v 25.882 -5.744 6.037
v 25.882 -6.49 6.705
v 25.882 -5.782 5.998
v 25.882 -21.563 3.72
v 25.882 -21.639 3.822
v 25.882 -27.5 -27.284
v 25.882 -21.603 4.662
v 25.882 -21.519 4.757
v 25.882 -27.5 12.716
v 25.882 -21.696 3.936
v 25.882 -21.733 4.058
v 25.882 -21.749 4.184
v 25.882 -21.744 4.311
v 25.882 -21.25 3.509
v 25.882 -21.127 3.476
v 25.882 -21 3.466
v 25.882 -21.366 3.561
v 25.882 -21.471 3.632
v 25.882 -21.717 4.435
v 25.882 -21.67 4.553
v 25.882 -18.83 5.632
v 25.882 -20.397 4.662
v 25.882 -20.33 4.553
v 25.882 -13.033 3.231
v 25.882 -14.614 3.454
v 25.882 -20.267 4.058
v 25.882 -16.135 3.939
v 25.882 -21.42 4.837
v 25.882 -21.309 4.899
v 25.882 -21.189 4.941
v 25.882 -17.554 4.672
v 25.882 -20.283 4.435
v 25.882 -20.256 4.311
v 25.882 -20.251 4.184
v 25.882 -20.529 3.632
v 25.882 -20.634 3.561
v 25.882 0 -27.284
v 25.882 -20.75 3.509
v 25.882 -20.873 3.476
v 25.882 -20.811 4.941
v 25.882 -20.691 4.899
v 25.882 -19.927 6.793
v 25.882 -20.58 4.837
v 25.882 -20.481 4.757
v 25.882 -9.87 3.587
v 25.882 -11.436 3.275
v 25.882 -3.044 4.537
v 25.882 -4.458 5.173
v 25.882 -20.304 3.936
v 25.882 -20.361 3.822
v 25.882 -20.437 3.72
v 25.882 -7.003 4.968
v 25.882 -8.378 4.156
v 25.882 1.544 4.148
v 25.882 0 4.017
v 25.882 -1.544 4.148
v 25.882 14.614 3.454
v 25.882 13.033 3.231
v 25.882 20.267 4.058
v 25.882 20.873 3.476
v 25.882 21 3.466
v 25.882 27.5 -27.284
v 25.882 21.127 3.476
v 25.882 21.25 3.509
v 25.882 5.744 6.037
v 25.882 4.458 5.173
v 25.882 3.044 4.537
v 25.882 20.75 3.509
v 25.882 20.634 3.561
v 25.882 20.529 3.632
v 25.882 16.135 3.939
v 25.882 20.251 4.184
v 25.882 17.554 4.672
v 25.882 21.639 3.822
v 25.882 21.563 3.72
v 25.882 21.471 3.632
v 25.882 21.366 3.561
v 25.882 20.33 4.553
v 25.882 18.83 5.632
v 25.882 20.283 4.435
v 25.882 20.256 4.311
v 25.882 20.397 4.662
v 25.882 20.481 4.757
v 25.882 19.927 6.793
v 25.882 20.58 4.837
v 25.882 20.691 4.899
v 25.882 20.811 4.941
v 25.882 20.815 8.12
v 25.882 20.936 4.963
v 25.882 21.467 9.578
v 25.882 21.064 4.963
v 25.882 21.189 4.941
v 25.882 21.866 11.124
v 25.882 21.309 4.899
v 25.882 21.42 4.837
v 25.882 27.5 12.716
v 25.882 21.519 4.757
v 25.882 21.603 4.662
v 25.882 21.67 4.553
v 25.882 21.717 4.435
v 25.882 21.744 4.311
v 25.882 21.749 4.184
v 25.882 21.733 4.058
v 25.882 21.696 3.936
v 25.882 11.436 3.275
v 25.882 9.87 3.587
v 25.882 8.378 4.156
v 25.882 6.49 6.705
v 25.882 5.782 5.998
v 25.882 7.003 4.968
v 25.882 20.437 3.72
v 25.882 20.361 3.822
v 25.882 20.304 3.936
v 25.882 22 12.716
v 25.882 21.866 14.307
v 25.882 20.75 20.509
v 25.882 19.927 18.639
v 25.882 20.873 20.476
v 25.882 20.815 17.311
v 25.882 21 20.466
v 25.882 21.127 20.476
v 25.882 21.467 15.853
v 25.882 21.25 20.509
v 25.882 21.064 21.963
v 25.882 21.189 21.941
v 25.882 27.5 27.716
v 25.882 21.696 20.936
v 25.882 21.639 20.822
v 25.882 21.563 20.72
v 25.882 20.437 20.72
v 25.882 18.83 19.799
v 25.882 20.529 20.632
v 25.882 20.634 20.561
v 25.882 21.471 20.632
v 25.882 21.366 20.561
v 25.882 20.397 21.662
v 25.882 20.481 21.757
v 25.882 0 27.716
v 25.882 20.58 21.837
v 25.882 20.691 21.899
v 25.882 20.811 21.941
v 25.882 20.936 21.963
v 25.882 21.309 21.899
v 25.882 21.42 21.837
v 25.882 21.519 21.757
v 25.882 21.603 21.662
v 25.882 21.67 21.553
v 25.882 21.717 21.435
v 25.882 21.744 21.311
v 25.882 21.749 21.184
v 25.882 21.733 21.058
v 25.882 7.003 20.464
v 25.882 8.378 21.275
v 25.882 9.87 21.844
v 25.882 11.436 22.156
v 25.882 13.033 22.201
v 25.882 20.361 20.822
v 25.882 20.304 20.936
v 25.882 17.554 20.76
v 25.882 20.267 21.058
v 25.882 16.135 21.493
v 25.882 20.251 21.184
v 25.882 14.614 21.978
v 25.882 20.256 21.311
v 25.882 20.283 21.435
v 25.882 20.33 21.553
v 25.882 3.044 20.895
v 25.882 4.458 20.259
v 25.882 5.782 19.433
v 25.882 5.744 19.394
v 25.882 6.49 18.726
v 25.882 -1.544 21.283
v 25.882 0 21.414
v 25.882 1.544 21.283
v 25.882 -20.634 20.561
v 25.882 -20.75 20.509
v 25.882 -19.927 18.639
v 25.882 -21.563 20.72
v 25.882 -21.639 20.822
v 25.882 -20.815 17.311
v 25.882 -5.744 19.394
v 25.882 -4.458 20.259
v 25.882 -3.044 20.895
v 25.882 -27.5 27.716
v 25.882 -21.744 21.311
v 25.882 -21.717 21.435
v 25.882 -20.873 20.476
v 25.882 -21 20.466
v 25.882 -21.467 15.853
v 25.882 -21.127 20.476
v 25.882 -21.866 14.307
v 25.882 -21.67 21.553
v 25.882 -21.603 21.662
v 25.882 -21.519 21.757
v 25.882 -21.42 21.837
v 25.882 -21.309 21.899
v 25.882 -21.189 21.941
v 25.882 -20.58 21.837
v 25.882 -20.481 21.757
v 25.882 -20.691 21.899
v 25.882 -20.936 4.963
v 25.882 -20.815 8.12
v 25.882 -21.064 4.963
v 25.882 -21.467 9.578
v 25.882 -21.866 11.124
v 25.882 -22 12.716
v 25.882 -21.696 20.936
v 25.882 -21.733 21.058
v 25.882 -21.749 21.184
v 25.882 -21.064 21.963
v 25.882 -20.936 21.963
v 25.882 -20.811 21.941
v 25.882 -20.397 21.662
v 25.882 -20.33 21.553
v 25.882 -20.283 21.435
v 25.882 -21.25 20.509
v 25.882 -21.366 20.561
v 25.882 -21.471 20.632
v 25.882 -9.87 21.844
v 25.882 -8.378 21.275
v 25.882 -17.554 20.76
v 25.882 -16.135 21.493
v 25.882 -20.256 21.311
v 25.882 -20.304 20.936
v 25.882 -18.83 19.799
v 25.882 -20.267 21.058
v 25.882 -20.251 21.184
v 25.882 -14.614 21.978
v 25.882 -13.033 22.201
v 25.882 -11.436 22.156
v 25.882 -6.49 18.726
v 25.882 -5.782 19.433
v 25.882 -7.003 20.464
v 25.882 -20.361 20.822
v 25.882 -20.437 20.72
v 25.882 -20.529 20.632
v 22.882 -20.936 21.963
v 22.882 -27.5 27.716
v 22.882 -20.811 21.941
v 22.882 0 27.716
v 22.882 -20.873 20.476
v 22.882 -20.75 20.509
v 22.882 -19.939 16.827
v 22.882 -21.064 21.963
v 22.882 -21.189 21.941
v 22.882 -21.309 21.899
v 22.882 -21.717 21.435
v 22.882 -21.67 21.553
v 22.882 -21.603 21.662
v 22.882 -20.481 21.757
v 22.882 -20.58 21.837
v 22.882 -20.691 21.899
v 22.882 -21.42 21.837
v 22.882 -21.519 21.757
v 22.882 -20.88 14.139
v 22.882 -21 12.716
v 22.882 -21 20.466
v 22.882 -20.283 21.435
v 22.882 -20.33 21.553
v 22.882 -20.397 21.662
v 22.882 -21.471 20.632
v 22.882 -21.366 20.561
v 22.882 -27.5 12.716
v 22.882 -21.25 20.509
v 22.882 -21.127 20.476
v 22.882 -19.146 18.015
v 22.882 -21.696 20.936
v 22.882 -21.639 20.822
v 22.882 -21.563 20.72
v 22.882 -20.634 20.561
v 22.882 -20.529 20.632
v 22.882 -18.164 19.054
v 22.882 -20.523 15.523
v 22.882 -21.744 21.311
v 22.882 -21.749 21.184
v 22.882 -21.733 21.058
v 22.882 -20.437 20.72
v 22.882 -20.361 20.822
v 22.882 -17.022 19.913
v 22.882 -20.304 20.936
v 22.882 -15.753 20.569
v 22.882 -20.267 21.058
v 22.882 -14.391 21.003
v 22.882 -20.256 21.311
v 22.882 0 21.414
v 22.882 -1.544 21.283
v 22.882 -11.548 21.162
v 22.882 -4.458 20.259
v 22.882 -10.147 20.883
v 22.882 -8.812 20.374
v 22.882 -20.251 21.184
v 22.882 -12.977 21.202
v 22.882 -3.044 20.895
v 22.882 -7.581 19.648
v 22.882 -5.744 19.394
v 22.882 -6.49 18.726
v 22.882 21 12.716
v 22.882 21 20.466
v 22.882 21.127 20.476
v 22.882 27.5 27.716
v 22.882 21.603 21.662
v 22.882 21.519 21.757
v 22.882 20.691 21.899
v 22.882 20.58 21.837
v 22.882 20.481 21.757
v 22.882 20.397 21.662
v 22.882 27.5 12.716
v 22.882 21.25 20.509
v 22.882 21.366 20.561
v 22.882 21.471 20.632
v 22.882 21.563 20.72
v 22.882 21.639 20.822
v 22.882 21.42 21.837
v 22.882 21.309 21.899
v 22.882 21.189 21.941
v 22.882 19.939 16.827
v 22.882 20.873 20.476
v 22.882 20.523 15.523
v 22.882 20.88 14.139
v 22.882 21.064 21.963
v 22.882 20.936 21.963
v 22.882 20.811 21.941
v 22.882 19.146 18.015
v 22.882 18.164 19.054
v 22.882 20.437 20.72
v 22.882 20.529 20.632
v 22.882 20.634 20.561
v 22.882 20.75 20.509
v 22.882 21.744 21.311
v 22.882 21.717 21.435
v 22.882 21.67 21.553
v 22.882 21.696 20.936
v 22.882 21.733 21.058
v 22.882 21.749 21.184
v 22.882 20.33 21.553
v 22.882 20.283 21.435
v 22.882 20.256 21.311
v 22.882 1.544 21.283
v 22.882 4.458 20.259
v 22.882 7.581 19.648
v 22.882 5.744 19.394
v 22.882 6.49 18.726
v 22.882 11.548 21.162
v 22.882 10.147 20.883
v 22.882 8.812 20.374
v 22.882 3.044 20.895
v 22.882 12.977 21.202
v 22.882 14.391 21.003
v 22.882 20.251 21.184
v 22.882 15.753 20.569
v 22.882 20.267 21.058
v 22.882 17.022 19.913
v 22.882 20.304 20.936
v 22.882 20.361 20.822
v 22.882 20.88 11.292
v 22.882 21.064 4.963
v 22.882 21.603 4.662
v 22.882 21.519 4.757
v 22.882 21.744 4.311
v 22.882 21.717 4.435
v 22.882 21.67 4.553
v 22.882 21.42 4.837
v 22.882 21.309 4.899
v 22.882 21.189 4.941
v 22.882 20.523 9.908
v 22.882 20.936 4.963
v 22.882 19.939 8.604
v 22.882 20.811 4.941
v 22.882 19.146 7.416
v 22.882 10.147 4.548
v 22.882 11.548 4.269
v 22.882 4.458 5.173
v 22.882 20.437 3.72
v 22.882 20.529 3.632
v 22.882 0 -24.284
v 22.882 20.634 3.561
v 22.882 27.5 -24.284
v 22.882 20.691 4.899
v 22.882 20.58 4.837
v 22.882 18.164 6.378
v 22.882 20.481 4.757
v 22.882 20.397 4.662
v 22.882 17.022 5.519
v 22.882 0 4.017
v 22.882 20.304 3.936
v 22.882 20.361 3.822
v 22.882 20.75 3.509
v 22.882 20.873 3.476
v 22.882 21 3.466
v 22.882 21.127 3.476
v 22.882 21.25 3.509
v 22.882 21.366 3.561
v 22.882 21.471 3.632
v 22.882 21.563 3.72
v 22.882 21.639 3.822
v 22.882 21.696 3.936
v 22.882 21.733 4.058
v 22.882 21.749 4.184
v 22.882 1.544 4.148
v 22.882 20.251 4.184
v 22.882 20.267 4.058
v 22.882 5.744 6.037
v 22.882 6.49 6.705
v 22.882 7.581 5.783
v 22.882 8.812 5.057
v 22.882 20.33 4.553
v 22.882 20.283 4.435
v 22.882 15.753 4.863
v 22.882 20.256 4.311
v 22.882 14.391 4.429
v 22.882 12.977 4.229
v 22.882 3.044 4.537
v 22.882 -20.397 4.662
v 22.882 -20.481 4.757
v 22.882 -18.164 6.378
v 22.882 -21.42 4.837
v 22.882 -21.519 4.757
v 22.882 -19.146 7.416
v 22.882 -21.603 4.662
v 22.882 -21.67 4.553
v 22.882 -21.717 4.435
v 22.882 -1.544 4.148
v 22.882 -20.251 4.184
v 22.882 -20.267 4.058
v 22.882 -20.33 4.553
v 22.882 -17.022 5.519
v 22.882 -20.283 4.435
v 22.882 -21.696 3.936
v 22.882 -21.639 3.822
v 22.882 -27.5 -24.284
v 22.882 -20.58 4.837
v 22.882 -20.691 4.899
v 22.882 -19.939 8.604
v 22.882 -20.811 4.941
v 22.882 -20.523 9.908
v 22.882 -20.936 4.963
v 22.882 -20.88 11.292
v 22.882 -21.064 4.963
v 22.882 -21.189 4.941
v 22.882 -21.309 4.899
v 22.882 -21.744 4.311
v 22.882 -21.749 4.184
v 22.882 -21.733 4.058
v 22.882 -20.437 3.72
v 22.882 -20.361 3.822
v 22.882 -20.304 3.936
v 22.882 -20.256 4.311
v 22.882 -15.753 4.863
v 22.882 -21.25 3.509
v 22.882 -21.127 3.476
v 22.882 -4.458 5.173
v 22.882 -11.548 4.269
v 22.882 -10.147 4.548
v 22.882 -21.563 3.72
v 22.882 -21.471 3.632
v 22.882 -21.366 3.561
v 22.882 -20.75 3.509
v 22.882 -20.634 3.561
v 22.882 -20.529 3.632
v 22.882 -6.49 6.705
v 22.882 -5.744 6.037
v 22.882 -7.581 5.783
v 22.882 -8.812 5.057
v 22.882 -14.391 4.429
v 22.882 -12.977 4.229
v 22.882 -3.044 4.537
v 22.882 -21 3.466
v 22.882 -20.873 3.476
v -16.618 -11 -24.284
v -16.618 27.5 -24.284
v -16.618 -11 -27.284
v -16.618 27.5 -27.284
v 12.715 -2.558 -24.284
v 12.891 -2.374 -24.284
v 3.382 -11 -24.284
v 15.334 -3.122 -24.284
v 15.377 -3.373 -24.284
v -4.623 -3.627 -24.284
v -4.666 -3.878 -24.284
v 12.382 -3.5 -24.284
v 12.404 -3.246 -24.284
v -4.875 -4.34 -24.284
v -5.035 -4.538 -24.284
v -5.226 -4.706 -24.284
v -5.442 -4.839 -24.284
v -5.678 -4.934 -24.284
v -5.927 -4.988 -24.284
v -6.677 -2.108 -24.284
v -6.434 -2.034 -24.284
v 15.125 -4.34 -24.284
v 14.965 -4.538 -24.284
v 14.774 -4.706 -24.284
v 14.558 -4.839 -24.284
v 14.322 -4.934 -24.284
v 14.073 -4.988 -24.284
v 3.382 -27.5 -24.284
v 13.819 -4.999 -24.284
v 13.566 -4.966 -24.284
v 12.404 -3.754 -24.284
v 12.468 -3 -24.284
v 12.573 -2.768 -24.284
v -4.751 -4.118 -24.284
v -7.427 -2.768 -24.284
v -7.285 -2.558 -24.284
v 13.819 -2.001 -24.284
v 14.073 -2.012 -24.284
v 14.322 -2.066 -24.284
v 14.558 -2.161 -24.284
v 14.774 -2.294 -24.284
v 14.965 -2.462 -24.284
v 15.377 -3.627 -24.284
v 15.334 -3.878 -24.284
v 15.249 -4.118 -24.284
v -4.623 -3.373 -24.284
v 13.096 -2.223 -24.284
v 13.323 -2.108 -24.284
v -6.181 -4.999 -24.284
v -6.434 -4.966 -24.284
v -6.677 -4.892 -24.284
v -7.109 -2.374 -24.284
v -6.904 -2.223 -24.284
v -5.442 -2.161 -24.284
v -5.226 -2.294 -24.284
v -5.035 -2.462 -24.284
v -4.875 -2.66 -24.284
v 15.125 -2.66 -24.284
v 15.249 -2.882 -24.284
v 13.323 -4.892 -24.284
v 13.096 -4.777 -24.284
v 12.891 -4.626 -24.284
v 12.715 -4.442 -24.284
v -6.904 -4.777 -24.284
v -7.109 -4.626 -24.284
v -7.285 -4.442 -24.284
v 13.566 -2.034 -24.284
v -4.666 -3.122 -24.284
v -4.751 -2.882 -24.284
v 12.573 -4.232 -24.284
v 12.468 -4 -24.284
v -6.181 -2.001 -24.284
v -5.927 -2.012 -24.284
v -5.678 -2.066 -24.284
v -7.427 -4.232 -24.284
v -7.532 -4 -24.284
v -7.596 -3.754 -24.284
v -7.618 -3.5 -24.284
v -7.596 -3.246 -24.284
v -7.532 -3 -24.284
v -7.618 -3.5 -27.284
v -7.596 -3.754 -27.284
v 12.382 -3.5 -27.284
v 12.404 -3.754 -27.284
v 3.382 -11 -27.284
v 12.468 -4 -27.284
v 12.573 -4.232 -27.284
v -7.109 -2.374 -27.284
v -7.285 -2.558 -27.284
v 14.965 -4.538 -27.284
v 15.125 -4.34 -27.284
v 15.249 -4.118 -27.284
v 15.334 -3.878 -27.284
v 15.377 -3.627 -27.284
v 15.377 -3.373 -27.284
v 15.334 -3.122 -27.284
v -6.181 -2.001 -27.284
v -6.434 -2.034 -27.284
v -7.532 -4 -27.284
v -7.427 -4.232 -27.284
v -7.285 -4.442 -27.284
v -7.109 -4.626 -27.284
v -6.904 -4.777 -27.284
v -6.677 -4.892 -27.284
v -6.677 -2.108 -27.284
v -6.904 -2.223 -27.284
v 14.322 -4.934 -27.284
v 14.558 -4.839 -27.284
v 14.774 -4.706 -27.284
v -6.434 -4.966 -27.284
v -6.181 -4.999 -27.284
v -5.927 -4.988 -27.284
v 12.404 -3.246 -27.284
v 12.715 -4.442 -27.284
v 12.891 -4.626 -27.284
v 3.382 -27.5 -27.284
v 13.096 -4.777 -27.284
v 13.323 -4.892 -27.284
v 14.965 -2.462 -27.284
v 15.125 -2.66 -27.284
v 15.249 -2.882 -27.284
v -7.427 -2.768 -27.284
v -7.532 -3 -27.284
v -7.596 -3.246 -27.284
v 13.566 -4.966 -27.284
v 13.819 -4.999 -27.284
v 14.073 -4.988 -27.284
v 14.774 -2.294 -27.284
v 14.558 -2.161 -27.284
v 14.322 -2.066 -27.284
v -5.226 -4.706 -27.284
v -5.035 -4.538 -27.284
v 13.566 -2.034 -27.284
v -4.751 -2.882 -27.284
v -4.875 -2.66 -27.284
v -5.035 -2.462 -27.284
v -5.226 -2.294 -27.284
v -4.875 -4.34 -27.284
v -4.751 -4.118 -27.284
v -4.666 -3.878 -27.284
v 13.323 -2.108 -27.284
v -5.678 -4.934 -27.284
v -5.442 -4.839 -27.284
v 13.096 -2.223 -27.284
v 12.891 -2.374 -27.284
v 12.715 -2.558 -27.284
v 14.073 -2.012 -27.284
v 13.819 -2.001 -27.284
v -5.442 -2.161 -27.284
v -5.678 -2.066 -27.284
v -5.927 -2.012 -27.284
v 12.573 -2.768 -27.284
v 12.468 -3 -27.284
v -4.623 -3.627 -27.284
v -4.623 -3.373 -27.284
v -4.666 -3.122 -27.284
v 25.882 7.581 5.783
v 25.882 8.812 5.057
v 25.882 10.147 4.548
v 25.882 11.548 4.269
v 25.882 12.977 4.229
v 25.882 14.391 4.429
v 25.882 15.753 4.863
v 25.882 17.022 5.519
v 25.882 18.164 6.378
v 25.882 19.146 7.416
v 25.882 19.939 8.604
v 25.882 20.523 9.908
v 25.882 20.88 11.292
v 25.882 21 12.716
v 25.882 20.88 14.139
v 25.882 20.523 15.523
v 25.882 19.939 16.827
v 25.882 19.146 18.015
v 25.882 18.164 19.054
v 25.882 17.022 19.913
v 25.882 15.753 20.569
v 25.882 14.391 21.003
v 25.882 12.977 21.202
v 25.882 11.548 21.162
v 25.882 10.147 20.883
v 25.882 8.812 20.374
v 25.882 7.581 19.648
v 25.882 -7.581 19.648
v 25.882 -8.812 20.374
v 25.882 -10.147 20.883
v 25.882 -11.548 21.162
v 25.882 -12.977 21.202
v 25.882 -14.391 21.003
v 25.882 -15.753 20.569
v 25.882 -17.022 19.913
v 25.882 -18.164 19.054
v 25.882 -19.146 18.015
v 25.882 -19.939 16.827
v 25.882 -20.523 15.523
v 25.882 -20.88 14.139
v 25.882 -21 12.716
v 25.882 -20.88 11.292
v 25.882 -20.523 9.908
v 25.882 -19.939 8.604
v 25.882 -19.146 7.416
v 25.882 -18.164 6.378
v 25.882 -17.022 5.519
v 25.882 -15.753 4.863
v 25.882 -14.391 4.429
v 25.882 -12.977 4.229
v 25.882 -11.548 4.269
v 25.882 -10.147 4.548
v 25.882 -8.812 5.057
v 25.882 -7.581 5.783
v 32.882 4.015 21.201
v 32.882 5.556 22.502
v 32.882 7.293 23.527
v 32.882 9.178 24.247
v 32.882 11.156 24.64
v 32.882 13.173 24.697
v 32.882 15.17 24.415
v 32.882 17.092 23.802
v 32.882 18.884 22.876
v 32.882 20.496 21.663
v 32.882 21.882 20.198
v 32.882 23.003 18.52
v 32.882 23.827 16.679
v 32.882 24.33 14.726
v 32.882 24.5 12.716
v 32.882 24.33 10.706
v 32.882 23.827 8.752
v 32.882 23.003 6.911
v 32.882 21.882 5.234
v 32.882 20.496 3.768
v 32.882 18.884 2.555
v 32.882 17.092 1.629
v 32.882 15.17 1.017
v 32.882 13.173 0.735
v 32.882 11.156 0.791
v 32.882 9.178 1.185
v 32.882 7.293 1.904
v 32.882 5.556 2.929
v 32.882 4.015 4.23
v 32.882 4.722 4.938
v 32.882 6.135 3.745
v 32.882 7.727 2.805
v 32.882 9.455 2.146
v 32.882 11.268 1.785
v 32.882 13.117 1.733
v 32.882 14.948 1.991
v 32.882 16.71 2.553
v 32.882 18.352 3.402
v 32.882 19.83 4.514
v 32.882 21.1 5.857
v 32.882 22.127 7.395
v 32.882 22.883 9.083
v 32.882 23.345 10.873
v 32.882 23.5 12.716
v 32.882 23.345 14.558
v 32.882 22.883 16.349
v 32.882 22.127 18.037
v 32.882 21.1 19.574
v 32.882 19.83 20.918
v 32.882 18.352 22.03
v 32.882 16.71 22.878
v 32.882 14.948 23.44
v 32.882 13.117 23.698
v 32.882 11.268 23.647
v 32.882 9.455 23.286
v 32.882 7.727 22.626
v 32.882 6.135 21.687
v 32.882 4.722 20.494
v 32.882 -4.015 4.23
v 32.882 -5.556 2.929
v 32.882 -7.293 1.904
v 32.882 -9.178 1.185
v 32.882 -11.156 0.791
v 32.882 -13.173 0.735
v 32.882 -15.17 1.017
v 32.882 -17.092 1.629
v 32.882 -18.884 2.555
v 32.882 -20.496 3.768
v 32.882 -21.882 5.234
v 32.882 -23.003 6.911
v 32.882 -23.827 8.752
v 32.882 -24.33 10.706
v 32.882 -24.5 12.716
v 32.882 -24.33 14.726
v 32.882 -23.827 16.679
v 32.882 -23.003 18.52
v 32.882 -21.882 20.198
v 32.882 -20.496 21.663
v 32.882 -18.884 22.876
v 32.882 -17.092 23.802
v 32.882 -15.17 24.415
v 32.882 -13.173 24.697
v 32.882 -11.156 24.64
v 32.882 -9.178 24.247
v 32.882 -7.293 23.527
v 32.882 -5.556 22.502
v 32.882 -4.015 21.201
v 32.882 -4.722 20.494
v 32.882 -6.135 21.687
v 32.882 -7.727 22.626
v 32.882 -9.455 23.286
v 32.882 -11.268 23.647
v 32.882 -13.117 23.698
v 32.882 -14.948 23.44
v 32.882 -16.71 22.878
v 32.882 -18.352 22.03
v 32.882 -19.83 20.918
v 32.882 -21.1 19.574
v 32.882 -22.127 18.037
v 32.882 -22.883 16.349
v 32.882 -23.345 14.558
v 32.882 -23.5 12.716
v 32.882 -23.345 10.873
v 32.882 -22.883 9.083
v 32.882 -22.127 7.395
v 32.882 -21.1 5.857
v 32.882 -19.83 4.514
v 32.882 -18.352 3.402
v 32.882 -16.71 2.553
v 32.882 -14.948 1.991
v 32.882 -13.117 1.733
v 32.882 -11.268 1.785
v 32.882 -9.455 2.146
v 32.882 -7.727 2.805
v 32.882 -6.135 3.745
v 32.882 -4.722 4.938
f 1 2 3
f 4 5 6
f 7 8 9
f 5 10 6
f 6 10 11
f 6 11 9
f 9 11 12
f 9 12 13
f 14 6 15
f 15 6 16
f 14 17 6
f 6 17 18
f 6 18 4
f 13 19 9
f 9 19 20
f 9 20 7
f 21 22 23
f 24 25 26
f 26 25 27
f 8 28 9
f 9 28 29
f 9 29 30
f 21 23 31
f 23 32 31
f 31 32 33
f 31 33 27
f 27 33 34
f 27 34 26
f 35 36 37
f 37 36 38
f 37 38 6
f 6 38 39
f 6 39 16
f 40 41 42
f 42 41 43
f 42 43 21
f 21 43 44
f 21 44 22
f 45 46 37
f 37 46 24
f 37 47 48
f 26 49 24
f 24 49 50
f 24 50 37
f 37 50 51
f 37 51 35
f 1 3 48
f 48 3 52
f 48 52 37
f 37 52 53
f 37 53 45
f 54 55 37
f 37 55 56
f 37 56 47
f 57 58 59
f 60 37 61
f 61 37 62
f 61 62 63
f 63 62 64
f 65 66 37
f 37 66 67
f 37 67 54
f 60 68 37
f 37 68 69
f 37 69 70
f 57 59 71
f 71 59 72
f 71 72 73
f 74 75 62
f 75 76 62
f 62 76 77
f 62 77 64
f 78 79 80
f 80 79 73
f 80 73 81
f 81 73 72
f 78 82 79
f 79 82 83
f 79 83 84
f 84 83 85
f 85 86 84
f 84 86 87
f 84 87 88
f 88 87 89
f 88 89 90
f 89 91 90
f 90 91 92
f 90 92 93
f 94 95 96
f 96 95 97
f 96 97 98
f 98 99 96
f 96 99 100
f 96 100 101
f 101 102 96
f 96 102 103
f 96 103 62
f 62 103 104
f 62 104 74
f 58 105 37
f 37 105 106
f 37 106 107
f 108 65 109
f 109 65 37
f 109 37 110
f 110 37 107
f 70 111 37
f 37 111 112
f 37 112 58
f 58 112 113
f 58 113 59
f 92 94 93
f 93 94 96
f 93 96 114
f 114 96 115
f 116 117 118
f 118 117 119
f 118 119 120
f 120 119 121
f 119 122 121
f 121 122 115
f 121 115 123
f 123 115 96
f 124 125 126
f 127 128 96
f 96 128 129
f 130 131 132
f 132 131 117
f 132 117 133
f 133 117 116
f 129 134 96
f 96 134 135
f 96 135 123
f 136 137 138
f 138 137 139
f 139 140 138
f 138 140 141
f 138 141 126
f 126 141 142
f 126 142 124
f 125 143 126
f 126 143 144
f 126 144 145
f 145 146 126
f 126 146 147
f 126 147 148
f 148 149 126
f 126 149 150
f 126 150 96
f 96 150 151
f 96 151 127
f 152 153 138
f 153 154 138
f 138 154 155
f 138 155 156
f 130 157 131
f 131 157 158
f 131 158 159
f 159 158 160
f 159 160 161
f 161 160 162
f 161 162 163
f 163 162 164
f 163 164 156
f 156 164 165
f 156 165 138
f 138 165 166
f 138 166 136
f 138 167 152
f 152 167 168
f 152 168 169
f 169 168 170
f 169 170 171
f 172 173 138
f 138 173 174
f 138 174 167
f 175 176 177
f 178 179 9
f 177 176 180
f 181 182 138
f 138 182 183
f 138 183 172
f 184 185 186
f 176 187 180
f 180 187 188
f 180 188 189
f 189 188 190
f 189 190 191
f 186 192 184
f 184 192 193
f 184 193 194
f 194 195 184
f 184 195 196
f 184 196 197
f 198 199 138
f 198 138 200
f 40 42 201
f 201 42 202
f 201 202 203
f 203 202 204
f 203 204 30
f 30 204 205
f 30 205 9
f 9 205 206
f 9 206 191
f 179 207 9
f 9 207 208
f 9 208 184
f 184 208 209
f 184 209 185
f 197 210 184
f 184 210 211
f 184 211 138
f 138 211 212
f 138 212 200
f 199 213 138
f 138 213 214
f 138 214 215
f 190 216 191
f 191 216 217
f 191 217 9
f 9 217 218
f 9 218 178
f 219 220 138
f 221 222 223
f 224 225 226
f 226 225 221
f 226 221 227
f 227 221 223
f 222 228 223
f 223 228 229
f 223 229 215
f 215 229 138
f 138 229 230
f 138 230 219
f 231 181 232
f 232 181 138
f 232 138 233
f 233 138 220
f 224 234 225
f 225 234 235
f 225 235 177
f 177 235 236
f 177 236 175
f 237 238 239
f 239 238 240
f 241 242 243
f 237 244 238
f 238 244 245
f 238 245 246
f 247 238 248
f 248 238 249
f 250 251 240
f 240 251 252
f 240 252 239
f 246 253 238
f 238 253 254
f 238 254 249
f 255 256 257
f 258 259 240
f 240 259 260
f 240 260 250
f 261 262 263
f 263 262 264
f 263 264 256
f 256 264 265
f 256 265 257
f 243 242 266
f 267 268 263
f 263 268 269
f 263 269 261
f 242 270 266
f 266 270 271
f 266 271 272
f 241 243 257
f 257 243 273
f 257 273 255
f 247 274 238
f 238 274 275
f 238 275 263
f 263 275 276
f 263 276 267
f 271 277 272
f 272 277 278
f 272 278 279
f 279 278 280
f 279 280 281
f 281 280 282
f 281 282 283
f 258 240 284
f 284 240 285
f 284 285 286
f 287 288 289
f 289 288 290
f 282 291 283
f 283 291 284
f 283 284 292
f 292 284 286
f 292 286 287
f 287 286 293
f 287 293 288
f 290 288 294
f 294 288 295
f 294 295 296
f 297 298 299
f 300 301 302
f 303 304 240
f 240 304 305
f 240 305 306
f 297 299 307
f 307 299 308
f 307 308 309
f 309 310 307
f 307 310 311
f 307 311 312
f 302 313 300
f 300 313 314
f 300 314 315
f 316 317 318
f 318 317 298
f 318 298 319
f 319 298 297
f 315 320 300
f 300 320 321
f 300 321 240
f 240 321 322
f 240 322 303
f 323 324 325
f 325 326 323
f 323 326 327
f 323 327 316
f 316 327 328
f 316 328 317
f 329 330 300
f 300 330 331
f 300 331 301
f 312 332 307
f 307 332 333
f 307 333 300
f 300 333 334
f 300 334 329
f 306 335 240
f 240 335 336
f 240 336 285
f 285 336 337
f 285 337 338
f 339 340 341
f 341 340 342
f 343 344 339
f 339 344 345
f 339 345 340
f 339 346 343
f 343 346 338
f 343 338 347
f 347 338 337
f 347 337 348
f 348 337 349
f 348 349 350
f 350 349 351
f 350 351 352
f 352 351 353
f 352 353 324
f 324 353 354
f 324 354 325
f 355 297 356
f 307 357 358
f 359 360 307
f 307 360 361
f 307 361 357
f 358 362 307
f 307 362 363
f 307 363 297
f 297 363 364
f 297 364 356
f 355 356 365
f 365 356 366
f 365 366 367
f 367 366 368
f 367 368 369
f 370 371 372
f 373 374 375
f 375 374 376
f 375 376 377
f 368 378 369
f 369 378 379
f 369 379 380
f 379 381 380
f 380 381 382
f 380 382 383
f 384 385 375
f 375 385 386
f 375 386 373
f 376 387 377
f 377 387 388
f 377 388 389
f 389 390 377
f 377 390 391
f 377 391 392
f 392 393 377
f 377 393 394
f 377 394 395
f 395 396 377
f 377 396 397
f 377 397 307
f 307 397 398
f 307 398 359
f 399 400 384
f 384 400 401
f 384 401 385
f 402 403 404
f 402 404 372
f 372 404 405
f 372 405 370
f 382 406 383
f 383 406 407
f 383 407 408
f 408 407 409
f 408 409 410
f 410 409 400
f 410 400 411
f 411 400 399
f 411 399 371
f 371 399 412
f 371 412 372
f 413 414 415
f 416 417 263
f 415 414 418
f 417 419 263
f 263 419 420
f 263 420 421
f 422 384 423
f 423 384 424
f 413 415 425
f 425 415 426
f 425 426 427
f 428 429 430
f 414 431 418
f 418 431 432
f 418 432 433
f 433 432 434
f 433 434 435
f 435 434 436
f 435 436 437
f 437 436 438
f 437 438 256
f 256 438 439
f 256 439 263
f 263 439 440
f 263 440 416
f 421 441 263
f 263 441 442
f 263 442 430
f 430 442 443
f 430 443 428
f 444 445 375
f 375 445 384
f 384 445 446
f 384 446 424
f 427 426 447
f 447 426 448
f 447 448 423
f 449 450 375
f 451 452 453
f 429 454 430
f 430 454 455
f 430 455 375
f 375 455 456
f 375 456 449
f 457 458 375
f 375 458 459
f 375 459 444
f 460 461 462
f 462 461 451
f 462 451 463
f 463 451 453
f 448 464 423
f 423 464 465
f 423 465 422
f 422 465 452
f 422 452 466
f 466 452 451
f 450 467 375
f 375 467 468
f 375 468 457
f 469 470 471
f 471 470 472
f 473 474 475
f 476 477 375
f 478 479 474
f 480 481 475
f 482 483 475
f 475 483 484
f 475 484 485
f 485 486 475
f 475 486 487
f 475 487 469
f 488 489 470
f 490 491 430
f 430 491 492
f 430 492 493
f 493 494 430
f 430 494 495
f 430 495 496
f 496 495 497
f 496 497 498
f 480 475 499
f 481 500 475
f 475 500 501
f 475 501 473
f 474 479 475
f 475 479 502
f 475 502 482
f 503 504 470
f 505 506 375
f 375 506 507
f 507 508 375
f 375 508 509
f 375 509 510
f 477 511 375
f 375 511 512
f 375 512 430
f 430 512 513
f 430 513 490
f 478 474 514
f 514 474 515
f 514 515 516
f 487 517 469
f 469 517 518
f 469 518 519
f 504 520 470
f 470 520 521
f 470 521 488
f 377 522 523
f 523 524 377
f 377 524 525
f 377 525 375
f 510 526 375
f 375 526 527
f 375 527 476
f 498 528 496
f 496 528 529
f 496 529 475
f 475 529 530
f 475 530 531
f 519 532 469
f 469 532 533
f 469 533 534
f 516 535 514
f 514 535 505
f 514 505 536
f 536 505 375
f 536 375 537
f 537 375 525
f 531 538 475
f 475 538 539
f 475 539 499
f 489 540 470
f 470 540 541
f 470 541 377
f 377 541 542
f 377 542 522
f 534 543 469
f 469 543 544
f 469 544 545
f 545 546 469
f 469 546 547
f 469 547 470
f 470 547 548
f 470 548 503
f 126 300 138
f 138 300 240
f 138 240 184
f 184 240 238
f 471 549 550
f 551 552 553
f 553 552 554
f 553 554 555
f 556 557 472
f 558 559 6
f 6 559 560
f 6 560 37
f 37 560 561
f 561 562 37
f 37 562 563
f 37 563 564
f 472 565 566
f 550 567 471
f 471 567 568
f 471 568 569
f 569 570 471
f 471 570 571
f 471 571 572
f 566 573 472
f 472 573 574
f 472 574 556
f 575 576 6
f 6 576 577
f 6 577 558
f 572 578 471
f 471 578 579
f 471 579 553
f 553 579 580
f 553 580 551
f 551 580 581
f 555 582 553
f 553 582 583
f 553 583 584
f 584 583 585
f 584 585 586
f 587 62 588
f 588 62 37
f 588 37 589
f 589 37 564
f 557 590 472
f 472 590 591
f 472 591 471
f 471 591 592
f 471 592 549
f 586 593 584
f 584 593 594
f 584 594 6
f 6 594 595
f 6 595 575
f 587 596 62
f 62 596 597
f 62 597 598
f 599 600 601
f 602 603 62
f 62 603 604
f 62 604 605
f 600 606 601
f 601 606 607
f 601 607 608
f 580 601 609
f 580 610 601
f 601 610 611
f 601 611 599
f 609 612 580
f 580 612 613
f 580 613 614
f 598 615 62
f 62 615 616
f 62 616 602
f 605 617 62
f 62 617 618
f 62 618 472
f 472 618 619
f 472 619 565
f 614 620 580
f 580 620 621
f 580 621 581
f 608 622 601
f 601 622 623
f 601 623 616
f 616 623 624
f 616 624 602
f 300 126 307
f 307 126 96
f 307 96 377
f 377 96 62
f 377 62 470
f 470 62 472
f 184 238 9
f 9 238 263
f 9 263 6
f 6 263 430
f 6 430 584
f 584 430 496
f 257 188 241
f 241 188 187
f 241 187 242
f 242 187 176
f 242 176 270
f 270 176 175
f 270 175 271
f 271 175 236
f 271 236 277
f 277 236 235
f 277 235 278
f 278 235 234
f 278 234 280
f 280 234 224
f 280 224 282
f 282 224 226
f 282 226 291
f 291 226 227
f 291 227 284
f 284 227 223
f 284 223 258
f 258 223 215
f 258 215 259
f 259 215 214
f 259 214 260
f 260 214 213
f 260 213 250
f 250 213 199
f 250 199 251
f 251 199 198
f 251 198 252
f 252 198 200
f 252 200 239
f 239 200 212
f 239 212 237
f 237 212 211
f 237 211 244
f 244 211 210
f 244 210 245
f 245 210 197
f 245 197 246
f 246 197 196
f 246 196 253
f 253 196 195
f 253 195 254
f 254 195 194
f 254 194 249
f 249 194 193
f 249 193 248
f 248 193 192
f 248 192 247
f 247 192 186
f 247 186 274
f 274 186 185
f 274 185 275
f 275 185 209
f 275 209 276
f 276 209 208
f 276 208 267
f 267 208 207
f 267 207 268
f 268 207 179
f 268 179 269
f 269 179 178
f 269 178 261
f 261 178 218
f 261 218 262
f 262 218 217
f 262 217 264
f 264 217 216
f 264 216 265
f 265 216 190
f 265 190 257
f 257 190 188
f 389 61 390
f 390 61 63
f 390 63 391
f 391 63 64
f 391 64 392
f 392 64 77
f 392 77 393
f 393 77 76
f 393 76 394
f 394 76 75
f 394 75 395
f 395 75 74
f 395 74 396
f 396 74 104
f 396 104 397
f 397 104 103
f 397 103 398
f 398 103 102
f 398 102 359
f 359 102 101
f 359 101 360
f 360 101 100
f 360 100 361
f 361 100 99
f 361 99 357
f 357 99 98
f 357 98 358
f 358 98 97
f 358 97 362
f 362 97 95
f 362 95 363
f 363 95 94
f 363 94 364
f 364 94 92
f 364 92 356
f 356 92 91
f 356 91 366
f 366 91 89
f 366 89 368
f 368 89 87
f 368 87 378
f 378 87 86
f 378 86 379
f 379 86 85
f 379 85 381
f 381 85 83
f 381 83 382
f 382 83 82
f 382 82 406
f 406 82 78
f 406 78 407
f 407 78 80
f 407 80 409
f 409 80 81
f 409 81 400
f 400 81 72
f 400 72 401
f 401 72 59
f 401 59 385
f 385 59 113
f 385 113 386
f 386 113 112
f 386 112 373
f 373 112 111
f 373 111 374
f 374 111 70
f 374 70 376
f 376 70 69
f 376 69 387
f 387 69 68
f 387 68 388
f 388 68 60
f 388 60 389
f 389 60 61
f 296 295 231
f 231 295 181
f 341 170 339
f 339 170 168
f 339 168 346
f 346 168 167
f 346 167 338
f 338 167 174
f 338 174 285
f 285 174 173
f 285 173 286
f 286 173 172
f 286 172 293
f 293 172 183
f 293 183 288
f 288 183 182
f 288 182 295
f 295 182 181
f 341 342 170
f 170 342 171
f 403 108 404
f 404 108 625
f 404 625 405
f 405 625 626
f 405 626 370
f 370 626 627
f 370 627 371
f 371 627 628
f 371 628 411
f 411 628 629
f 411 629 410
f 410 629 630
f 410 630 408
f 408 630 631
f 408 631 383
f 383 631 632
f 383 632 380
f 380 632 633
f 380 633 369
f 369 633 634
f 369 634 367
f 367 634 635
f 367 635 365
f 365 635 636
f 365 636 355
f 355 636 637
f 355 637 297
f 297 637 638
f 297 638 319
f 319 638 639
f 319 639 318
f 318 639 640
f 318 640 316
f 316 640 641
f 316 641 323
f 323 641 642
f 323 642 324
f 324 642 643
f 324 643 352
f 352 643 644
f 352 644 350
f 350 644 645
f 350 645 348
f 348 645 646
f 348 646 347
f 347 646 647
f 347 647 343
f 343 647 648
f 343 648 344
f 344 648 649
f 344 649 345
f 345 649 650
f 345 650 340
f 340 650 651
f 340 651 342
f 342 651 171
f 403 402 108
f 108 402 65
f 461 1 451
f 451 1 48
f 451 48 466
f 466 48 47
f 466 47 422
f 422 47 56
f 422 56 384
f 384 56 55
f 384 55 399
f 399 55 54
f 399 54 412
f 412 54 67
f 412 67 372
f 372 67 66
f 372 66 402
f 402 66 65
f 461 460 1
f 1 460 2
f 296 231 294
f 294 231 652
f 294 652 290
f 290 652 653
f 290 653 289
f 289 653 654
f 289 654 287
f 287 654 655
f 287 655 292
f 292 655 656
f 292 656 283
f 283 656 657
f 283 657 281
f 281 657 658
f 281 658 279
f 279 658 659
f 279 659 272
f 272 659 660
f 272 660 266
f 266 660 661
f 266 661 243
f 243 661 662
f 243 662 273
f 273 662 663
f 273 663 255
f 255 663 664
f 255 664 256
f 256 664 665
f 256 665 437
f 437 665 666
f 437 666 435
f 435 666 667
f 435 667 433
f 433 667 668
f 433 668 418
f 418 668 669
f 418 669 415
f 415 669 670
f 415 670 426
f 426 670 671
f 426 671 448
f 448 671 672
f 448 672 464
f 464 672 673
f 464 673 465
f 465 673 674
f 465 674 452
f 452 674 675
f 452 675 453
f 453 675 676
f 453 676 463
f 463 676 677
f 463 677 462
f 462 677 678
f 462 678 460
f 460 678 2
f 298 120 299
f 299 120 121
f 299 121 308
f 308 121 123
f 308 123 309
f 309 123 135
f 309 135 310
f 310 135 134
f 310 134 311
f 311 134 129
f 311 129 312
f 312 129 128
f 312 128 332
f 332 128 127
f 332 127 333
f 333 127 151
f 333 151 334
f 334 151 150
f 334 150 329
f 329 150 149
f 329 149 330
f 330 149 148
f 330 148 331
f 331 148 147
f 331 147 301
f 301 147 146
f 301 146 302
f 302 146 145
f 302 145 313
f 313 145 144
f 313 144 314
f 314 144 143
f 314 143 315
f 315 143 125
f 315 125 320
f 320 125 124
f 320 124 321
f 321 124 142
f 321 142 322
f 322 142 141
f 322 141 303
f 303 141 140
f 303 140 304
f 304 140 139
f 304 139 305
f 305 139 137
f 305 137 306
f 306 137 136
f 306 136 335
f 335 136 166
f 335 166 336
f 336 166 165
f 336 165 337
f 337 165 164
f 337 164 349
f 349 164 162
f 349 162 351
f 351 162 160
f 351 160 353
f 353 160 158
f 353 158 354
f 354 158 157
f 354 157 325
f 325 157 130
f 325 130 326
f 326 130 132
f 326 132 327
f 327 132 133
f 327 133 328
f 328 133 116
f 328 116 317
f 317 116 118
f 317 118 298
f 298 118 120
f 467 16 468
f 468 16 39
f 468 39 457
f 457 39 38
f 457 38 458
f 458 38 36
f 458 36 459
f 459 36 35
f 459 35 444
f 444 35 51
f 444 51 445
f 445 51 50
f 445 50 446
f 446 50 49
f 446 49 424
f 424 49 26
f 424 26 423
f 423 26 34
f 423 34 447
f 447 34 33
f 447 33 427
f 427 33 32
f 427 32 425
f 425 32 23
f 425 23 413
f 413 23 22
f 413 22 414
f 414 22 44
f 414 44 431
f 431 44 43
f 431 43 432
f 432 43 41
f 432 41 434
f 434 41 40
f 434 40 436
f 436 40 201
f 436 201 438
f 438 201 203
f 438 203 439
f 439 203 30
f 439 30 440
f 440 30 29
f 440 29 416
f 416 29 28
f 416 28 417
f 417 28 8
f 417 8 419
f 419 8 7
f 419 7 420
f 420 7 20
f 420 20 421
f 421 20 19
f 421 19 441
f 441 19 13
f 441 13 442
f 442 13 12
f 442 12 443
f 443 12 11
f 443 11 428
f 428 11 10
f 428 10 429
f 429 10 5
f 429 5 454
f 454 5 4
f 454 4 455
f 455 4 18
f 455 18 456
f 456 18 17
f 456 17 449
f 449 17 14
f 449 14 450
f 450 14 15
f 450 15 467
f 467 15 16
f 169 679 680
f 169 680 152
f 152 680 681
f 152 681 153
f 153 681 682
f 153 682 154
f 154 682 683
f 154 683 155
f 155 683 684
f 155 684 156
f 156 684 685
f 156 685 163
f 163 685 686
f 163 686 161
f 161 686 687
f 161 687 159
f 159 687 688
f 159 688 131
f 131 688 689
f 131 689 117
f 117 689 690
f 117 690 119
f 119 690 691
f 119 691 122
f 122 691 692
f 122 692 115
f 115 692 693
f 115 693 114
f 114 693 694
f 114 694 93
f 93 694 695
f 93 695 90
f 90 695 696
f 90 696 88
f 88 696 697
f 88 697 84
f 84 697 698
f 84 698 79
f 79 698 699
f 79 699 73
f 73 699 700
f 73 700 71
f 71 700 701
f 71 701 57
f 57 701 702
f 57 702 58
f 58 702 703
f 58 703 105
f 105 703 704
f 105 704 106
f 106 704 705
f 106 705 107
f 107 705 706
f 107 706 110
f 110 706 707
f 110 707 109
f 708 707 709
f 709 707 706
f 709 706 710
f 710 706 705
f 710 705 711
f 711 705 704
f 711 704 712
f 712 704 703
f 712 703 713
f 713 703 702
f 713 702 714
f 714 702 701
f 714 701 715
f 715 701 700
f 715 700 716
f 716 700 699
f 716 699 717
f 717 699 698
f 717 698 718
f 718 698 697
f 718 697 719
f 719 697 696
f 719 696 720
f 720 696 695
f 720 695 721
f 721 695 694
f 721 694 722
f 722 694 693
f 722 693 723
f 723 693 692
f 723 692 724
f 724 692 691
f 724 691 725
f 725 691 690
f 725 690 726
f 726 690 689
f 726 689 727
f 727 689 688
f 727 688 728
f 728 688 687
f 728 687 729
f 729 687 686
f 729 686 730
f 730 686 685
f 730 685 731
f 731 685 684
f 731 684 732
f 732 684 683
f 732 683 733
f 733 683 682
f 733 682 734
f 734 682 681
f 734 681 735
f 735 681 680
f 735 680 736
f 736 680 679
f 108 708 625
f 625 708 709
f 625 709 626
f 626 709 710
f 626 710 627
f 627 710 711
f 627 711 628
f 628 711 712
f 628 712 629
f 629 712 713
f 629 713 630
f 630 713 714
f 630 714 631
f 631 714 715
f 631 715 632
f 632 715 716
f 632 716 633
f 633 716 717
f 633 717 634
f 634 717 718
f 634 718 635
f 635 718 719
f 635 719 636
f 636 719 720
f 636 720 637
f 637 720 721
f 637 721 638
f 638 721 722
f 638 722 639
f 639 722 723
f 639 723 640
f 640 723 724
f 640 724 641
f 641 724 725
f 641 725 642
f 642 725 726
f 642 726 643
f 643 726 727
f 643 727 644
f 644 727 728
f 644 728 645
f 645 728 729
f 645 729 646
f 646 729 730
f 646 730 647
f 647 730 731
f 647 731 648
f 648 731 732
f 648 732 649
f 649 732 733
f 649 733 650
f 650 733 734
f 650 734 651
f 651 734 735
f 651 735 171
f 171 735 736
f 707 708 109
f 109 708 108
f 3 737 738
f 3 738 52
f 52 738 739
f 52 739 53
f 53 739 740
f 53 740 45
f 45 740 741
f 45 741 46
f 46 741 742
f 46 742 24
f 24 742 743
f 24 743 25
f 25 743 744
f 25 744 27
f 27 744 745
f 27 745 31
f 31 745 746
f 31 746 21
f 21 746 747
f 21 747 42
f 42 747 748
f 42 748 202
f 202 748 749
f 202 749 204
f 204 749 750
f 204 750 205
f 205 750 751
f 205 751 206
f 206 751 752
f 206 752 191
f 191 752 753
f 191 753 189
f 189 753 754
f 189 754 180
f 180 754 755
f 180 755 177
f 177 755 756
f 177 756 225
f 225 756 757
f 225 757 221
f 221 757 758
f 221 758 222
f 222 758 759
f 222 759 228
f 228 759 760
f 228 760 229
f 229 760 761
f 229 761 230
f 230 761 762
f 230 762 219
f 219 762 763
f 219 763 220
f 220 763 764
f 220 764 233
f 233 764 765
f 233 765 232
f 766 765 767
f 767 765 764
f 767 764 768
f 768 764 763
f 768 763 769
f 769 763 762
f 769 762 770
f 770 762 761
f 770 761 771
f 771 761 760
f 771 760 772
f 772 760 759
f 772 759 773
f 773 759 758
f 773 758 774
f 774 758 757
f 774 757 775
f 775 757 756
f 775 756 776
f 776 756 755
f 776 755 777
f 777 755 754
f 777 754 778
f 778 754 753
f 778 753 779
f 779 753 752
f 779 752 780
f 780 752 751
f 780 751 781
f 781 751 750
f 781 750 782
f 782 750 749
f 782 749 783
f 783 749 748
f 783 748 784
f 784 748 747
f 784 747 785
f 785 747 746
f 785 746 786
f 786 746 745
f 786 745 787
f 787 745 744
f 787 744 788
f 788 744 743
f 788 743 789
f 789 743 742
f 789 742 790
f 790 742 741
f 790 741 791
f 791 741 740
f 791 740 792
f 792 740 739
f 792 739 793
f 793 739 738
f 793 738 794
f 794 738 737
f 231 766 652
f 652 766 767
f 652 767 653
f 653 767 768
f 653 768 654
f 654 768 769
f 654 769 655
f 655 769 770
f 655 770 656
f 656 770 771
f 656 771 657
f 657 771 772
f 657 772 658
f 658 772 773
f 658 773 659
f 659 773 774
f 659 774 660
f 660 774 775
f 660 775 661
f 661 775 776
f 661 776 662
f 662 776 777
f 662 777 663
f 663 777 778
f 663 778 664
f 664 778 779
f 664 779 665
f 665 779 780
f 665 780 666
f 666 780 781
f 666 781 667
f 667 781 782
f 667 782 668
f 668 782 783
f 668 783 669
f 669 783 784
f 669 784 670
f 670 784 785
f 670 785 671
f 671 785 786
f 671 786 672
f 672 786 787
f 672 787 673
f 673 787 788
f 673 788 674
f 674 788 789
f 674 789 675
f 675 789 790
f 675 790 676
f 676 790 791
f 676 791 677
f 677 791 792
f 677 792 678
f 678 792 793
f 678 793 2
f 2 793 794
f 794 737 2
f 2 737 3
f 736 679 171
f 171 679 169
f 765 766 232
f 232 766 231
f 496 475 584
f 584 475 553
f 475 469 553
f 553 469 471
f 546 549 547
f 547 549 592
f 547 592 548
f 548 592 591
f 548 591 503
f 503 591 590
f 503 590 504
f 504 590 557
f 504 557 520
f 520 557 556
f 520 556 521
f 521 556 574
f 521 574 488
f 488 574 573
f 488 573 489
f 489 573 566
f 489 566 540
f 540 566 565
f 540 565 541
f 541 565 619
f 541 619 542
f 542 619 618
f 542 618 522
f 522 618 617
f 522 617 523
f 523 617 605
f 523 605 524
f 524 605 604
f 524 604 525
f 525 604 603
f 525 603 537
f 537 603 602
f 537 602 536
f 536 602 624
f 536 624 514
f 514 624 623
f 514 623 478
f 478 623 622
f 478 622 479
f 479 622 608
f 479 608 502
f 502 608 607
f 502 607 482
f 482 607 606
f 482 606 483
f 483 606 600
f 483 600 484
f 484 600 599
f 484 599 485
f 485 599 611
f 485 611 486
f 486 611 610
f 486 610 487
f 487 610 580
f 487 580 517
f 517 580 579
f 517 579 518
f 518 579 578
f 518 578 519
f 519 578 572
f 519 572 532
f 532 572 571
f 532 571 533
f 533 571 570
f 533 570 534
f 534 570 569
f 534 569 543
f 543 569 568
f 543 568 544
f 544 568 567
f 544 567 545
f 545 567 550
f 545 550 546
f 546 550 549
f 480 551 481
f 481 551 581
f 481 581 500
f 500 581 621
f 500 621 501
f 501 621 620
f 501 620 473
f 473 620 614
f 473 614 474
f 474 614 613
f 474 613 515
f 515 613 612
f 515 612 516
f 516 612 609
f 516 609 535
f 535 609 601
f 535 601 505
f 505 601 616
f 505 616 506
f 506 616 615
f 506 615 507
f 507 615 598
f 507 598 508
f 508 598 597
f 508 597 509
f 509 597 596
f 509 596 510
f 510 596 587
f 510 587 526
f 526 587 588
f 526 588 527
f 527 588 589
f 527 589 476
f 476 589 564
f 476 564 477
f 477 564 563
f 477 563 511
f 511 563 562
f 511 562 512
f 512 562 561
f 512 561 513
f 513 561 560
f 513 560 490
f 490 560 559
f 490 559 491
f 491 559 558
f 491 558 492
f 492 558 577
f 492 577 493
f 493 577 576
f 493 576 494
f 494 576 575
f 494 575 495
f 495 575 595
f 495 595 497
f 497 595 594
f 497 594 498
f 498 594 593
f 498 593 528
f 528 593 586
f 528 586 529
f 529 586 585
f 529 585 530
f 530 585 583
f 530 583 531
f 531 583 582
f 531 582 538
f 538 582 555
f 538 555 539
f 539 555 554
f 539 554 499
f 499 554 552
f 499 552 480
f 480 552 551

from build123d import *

# Parameters (mm, degrees)
EXTRUDE_1_DEPTH       = 27.5
SKETCH_3_R            = 0.75
CUT_EXTRUDE_3_DEPTH   = 3
REVOLVE_1_ANGLE       = 135
MIRROR_3_COPY_1_ANGLE = 135
MIRROR_3_COPY_2_ANGLE = 135
SKETCH_2_R            = 1.5
SKETCH_2_W            = 20
SKETCH_2_H            = 16.5
CUT_EXTRUDE_4_DEPTH   = 3


with BuildPart() as part:
    # 草图1 → 凸台-拉伸1 (new, symmetric)
    with BuildSketch(Plane(origin=(0, 0, 0), x_dir=(1, 0, 0), z_dir=(0, 1, 0))):
        Polygon((-16.617647059, 27.284313725), (25.882352941, 27.284313725), (25.882352941, -27.715686275), (22.882352941, -27.715686275), (22.882352941, 24.284313725), (-16.617647059, 24.284313725), align=None)
    extrude(amount=EXTRUDE_1_DEPTH, both=True)

    # 草图3 → 切除-拉伸3 (cut)
    with BuildSketch(Plane(origin=(25.882352941, 0, 0), x_dir=(0, 0, -1), z_dir=(1, 0, 0))):
        with BuildLine():
            ThreePointArc((-19.394463571, 5.743970558), (-21.414171084, 0), (-19.394463571, -5.743970558))
            Line((-19.394463571, -5.743970558), (-18.726093915, -6.48959236))
            ThreePointArc((-18.726093915, -6.48959236), (-12.715686275, -21), (-6.705278634, -6.48959236))
            Line((-6.705278634, -6.48959236), (-6.036908978, -5.743970558))
            ThreePointArc((-6.036908978, -5.743970558), (-4.017201465, 0), (-6.036908978, 5.743970558))
            Line((-6.036908978, 5.743970558), (-6.705278634, 6.48959236))
            ThreePointArc((-6.705278634, 6.48959236), (-12.715686275, 21), (-18.726093915, 6.48959236))
            Line((-18.726093915, 6.48959236), (-19.394463571, 5.743970558))
        make_face()
        with Locations((-4.215686275, -21)):
            Circle(SKETCH_3_R)
        with Locations((-21.215686275, -21)):
            Circle(SKETCH_3_R)
        with Locations((-4.215686275, 21)):
            Circle(SKETCH_3_R)
        with Locations((-21.215686275, 21)):
            Circle(SKETCH_3_R)
    extrude(amount=-CUT_EXTRUDE_3_DEPTH, mode=Mode.SUBTRACT)

    # 草图5 → 旋转1 (revolve)
    with BuildSketch(Plane(origin=(0, 0, 12.715686275), x_dir=(0, -1, 0), z_dir=(0, 0, 1))):
        Polygon((-22, 25.882352941), (-24.5, 32.882352941), (-23.5, 32.882352941), (-21, 25.882352941), align=None)
    revolve_1 = revolve(axis=Axis((32.882352941, 12.5, 12.715686275), (-1, 0, 0)), revolution_arc=REVOLVE_1_ANGLE)

    # 镜向1: 旋转1 across plane
    add(revolve_1.mirror(Plane.ZX))

    # 镜向2: 旋转1 across plane
    add(revolve_1.mirror(Plane.XY.offset(12.715686275)))

    # 镜向3 copy 1 sketch → 镜向3 copy 1 (revolve)
    with BuildSketch(Plane.YX.offset(-12.715686275)):
        Polygon((-22, 25.882352941), (-24.5, 32.882352941), (-23.5, 32.882352941), (-21, 25.882352941), align=None)
    revolve(axis=Axis((32.882352941, -12.5, 12.715686275), (-1, 0, 0)), revolution_arc=MIRROR_3_COPY_1_ANGLE)

    # 镜向3 copy 2 sketch → 镜向3 copy 2 (revolve)
    with BuildSketch(Plane(origin=(0, 0, 12.715686275), x_dir=(0, -1, 0), z_dir=(0, 0, -1))):
        Polygon((-22, -25.882352941), (-24.5, -32.882352941), (-23.5, -32.882352941), (-21, -25.882352941), align=None)
    revolve(axis=Axis((32.882352941, 12.5, 12.715686275), (1, 0, 0)), revolution_arc=MIRROR_3_COPY_2_ANGLE)

    # 草图2 → 切除-拉伸4 (cut)
    with BuildSketch(Plane(origin=(0, 0, -27.284313725), x_dir=(-1, 0, 0), z_dir=(0, 0, -1))):
        with Locations((6.117647059, -3.5)):
            Circle(SKETCH_2_R)
        with Locations((-13.882352941, -3.5)):
            Circle(SKETCH_2_R)
        with Locations((6.617647059, -19.25)):
            Rectangle(SKETCH_2_W, SKETCH_2_H)
    extrude(amount=-CUT_EXTRUDE_4_DEPTH, mode=Mode.SUBTRACT)


solid = part.part
